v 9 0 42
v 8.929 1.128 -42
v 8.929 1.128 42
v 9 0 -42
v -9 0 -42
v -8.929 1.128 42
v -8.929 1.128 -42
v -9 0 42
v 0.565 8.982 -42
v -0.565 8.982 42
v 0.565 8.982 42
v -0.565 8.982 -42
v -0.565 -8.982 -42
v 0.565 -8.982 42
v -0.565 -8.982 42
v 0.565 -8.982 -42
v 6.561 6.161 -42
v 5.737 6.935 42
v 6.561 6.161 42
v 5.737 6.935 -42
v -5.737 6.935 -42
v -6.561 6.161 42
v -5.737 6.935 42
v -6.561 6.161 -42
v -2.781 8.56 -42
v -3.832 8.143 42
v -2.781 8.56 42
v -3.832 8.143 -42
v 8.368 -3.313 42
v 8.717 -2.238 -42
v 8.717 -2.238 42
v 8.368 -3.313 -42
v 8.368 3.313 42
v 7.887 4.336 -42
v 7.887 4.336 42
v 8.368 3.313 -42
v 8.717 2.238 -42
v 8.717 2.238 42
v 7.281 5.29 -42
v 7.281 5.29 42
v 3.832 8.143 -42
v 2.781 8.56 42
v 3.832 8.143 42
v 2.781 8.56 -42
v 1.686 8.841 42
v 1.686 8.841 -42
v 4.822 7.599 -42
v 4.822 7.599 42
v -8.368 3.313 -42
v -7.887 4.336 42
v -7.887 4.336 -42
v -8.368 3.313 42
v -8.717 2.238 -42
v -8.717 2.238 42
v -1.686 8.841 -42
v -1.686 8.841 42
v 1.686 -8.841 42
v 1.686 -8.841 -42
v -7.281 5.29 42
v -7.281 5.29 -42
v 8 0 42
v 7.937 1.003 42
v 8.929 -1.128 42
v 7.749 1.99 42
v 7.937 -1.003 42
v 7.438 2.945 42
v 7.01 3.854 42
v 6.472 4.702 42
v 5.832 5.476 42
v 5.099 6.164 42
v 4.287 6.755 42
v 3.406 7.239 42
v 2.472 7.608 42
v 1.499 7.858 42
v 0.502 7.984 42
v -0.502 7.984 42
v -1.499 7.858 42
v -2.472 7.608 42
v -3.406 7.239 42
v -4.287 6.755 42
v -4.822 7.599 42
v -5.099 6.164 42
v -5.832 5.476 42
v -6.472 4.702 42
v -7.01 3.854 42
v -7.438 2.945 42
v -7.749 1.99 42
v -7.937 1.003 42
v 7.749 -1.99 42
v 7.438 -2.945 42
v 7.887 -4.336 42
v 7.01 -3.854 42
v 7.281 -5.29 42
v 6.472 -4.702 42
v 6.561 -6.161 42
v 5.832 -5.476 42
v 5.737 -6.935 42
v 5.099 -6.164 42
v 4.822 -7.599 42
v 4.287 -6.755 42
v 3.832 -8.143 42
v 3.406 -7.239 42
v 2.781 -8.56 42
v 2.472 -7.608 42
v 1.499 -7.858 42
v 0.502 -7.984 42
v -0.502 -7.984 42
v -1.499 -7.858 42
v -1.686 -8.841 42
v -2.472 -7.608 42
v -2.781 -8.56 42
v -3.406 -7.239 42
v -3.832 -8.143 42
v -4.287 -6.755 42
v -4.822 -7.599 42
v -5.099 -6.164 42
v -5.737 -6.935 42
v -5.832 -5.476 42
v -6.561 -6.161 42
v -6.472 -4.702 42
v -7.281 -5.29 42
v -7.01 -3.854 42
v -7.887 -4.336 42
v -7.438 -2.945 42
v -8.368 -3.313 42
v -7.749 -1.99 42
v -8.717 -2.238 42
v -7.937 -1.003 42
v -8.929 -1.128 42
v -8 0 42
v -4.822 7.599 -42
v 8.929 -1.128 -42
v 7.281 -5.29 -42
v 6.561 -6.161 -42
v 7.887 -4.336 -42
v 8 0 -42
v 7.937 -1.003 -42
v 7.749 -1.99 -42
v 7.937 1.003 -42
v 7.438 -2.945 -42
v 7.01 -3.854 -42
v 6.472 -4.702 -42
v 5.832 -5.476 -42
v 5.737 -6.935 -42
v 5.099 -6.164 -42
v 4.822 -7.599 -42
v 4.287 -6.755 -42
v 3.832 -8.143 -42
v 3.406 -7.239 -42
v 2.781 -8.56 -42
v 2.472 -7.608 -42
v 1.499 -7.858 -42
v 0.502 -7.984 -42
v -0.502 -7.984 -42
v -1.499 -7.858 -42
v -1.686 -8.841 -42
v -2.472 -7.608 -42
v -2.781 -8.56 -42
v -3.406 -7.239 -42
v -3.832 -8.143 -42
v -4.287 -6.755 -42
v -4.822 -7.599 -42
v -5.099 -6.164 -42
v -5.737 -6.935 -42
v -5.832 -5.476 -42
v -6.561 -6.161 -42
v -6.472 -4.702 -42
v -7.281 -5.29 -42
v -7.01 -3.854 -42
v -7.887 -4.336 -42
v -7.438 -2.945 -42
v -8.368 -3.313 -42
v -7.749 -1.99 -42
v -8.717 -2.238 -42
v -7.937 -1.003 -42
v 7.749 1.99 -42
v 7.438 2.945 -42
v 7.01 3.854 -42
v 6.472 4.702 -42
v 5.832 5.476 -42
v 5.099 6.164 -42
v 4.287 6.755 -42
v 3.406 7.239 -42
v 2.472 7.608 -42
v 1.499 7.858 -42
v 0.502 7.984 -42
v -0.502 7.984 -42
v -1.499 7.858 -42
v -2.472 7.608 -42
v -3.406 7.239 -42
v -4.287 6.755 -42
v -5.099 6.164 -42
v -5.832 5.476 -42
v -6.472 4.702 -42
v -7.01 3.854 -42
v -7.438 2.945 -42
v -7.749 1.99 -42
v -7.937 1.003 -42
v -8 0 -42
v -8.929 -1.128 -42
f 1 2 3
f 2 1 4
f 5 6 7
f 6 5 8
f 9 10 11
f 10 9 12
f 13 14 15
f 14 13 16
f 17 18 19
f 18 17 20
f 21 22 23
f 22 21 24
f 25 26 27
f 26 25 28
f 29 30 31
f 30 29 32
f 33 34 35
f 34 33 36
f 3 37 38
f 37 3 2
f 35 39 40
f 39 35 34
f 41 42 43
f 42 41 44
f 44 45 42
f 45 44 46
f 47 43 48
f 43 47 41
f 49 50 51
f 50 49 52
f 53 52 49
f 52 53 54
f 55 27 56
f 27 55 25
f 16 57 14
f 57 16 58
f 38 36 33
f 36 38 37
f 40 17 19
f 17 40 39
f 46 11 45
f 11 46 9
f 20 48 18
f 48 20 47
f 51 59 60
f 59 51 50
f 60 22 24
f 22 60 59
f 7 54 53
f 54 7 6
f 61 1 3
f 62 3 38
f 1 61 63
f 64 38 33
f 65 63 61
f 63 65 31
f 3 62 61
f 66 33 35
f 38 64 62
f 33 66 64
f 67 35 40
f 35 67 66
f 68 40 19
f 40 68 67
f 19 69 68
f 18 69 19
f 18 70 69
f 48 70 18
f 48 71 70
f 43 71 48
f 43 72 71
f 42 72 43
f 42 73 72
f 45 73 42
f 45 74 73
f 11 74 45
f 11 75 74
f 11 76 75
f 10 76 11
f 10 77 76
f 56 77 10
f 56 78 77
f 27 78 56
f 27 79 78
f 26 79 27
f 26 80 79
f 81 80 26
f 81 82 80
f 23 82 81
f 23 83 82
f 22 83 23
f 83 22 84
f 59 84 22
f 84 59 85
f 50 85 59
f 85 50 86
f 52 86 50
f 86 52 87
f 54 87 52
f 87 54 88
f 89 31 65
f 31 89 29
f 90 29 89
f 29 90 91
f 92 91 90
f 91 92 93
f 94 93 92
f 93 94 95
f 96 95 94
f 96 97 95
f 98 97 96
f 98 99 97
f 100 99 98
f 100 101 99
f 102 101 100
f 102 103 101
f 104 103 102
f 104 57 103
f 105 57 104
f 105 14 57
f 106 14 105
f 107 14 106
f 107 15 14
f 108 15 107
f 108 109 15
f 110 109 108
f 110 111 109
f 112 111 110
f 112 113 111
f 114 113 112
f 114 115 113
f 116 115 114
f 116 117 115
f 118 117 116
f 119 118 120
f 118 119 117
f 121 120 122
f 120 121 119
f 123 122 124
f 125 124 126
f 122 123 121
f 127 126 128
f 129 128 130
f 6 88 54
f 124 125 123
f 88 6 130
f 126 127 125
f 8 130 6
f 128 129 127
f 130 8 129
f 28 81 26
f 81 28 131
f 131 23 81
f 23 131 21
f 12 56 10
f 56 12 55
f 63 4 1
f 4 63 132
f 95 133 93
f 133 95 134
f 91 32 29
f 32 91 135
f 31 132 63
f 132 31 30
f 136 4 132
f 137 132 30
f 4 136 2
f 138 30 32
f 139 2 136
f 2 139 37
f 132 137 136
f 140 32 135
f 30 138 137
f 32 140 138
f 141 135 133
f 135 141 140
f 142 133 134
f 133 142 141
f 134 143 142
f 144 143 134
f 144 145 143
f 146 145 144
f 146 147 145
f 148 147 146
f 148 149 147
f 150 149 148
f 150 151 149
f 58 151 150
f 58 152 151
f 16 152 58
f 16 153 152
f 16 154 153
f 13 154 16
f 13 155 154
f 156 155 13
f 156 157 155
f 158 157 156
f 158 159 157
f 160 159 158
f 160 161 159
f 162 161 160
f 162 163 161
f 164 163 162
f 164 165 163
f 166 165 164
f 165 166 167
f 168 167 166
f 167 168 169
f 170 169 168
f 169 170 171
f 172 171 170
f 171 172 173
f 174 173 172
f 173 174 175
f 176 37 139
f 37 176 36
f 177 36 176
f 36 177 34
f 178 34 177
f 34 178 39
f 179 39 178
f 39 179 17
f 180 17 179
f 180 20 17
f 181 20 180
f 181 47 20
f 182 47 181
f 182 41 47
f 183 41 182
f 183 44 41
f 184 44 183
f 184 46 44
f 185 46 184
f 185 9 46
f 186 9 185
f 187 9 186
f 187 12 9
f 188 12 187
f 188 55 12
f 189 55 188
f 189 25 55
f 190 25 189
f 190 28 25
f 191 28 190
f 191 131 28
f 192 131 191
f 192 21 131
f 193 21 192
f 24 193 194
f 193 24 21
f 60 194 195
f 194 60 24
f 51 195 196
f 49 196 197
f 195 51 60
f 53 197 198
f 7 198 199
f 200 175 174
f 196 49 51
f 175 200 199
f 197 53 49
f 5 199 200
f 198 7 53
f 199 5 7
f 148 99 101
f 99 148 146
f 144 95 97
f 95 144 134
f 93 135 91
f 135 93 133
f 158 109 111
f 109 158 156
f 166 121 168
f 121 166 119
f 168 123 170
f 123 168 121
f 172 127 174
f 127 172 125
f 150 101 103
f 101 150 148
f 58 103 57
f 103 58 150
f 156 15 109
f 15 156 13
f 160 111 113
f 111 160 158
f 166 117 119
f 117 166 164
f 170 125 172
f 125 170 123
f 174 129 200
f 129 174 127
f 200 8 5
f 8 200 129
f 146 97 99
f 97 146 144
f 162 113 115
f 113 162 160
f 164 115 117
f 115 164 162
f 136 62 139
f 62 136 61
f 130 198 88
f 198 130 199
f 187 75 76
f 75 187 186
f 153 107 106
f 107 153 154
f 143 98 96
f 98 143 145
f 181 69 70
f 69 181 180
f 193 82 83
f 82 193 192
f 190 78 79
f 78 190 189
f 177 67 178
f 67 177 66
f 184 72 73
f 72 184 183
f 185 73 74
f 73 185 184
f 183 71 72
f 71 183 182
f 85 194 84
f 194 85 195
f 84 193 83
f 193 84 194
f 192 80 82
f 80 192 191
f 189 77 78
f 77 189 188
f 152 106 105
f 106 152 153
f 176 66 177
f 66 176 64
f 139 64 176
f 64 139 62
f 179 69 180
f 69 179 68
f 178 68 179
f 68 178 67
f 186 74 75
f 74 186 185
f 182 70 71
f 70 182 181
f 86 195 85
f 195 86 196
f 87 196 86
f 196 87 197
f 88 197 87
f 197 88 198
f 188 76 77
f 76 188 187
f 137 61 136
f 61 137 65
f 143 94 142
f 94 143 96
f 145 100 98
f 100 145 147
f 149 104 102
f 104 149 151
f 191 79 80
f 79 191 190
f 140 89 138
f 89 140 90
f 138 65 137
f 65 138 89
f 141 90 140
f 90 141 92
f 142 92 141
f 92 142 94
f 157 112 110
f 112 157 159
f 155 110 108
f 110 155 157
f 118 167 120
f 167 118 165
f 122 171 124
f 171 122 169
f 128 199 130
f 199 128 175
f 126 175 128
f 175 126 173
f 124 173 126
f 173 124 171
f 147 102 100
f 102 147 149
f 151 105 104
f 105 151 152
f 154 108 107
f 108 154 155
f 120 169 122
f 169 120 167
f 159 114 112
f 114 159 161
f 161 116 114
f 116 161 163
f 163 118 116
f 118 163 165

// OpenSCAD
$fn = 50;


difference() {
	union() {
		translate(v = [0, 0, -42.0000000000]) {
			cylinder(h = 84, r = 9.0000000000);
		}
	}
	union() {
		translate(v = [0, 0, -100.0000000000]) {
			cylinder(h = 200, r = 8);
		}
	}
}
